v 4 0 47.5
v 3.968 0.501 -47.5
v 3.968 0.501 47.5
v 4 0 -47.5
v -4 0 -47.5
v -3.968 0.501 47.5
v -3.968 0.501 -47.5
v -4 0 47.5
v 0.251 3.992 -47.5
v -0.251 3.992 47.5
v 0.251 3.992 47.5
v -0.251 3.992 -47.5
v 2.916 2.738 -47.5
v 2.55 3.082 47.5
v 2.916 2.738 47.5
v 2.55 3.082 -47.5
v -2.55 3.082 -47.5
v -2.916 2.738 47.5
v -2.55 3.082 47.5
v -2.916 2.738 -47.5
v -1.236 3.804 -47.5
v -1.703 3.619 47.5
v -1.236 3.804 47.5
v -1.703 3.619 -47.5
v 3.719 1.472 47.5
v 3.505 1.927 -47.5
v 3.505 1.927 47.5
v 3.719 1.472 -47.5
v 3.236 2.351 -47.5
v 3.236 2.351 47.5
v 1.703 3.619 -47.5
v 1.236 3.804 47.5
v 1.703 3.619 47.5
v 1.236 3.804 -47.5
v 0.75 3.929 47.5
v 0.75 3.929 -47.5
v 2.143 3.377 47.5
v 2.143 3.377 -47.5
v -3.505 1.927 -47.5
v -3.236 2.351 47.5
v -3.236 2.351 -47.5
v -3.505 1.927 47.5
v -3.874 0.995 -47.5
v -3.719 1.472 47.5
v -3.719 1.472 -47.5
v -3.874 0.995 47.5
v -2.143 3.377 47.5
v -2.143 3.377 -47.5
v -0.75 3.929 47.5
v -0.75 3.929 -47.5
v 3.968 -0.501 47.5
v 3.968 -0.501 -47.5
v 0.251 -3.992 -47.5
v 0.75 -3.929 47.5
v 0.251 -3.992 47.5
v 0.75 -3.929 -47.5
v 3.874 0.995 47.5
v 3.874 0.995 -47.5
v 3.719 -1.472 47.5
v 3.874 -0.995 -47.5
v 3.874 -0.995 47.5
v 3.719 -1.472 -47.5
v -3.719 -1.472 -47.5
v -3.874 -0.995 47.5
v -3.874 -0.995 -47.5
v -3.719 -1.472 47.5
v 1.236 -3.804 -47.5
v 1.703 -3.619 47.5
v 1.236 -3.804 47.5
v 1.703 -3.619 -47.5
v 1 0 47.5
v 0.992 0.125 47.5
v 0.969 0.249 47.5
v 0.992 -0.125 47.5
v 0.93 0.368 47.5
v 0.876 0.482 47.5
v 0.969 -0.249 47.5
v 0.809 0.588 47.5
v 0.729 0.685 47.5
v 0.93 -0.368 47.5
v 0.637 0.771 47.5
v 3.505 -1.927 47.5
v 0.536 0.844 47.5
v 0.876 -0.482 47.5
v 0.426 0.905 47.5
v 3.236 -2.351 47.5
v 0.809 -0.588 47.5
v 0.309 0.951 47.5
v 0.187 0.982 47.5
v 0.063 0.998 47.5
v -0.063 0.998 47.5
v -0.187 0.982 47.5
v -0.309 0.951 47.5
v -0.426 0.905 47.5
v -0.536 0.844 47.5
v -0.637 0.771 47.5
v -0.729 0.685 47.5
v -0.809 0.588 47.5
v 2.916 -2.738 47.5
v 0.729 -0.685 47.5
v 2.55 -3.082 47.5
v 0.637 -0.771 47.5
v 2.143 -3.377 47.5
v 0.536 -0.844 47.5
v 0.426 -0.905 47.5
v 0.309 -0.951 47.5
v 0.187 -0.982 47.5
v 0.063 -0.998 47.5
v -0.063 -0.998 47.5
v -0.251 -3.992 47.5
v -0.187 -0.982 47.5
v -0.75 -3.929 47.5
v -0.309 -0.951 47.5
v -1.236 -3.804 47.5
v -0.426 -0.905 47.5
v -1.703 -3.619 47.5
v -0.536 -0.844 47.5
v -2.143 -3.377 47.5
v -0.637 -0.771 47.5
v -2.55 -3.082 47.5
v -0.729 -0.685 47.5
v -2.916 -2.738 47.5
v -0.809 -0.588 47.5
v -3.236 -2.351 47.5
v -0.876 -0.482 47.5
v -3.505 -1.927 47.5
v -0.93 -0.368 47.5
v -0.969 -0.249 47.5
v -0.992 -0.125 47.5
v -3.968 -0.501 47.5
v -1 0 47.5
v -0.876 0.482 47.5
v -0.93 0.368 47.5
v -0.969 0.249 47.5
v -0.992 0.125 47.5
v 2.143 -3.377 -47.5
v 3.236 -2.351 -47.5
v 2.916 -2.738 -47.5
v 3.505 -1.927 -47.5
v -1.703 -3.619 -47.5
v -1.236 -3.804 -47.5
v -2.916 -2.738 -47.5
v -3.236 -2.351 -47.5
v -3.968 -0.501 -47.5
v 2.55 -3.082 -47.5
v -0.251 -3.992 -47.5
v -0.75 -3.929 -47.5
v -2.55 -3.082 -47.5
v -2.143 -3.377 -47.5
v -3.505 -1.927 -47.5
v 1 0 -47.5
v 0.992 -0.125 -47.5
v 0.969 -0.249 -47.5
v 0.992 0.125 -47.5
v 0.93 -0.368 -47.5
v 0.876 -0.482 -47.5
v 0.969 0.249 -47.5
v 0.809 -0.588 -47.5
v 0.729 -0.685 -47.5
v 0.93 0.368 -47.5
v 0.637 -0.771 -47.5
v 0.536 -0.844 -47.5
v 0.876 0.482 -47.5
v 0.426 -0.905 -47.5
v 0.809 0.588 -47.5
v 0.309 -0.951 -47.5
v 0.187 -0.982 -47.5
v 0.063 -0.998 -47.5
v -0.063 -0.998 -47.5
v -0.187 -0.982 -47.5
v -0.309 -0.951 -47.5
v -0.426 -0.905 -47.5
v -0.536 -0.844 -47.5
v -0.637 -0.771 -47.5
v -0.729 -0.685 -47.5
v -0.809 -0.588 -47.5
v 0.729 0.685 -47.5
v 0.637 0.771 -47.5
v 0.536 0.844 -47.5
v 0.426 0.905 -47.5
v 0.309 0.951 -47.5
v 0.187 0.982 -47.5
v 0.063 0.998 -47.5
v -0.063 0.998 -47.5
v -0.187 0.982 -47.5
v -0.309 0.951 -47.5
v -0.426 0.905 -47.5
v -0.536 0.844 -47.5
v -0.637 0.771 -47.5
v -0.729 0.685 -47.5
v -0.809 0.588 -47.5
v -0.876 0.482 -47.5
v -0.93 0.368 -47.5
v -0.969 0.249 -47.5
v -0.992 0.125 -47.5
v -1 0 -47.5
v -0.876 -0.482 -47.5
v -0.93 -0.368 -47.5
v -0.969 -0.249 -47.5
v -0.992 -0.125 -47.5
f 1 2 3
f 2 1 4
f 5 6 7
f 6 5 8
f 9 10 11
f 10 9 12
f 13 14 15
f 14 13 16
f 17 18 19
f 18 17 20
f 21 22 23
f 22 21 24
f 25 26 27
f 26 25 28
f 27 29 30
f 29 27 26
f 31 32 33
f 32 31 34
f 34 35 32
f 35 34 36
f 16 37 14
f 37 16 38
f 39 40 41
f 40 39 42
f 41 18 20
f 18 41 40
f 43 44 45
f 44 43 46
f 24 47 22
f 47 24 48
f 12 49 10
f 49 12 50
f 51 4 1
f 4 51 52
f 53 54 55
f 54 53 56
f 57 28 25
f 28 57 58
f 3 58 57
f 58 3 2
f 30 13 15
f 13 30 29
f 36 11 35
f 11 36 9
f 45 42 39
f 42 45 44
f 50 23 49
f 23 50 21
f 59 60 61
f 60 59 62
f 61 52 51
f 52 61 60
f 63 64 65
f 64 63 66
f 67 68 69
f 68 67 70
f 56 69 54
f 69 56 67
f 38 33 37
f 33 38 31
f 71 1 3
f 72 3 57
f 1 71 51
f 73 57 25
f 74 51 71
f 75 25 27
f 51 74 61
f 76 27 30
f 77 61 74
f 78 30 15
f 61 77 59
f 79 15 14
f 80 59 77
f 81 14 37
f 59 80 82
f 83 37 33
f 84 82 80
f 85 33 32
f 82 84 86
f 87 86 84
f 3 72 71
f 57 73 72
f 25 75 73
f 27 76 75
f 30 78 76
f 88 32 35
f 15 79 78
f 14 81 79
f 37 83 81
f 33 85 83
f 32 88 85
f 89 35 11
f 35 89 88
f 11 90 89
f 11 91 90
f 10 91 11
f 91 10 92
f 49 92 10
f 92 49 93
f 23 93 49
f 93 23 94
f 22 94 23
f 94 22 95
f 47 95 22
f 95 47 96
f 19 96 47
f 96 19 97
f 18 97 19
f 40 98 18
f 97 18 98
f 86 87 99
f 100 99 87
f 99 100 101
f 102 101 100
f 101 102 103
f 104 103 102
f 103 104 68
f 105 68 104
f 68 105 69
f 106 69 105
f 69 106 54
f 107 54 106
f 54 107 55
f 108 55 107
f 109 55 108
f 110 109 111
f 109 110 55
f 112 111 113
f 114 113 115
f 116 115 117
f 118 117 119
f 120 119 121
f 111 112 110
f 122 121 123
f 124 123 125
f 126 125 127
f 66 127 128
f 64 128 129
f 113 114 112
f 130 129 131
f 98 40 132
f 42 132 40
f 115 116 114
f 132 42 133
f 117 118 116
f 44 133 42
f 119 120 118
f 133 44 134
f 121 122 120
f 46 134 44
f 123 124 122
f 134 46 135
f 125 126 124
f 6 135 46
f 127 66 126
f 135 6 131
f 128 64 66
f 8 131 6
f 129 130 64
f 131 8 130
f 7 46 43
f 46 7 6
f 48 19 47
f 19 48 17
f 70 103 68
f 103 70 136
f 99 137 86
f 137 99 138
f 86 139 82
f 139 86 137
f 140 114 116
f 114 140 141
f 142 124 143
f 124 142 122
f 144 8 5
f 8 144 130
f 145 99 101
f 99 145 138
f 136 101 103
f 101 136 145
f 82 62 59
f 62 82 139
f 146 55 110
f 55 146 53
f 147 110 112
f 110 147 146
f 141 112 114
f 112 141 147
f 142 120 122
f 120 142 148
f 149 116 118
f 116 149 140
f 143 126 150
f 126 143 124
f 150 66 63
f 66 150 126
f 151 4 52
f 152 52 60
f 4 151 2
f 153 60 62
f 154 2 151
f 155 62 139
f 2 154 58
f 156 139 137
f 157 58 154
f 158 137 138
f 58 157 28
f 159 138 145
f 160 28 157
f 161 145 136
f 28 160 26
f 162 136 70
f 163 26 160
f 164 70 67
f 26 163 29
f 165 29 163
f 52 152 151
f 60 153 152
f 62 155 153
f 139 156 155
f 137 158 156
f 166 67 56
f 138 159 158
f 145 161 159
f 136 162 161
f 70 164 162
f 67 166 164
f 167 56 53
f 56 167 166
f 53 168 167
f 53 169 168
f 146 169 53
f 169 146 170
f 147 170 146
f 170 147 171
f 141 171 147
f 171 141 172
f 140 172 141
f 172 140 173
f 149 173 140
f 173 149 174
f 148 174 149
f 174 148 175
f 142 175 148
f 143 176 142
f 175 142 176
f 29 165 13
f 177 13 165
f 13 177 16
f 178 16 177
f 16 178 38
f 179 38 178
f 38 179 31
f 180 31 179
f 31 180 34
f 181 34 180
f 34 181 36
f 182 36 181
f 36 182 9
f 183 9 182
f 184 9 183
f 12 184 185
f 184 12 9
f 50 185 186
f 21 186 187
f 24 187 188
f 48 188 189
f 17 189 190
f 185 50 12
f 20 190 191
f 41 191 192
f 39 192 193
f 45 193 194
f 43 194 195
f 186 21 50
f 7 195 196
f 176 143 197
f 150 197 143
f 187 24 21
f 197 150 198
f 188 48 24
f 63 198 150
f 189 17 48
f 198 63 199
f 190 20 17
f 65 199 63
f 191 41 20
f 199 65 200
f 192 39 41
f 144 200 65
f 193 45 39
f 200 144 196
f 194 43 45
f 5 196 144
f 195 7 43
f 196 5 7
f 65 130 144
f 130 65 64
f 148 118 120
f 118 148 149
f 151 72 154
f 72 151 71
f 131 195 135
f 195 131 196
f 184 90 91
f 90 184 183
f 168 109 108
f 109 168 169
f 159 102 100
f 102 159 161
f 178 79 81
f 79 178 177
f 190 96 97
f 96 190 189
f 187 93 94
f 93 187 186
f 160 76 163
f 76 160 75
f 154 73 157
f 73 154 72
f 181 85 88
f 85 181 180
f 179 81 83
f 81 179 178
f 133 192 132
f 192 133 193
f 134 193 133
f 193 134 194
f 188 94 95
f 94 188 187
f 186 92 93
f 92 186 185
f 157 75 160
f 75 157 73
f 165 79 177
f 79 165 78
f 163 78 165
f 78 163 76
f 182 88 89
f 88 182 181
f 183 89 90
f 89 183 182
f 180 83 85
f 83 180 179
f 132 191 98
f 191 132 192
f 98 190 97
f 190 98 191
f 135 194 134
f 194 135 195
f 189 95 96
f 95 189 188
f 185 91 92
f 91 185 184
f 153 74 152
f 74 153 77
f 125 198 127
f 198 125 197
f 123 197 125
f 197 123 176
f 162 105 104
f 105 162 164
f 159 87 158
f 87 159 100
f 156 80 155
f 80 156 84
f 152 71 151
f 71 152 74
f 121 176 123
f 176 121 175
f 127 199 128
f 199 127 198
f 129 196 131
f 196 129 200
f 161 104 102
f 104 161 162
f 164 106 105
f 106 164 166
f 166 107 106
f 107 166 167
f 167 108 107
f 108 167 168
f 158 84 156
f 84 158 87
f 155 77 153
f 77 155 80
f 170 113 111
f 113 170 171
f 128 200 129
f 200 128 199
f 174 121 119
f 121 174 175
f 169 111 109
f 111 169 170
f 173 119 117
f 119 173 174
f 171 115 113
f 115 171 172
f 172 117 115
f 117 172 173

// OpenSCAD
$fn = 50;


difference() {
	union() {
		translate(v = [0, 0, -47.5000000000]) {
			cylinder(h = 95, r = 4.0000000000);
		}
	}
	union() {
		translate(v = [0, 0, -100.0000000000]) {
			cylinder(h = 200, r = 1.0000000000);
		}
	}
}
